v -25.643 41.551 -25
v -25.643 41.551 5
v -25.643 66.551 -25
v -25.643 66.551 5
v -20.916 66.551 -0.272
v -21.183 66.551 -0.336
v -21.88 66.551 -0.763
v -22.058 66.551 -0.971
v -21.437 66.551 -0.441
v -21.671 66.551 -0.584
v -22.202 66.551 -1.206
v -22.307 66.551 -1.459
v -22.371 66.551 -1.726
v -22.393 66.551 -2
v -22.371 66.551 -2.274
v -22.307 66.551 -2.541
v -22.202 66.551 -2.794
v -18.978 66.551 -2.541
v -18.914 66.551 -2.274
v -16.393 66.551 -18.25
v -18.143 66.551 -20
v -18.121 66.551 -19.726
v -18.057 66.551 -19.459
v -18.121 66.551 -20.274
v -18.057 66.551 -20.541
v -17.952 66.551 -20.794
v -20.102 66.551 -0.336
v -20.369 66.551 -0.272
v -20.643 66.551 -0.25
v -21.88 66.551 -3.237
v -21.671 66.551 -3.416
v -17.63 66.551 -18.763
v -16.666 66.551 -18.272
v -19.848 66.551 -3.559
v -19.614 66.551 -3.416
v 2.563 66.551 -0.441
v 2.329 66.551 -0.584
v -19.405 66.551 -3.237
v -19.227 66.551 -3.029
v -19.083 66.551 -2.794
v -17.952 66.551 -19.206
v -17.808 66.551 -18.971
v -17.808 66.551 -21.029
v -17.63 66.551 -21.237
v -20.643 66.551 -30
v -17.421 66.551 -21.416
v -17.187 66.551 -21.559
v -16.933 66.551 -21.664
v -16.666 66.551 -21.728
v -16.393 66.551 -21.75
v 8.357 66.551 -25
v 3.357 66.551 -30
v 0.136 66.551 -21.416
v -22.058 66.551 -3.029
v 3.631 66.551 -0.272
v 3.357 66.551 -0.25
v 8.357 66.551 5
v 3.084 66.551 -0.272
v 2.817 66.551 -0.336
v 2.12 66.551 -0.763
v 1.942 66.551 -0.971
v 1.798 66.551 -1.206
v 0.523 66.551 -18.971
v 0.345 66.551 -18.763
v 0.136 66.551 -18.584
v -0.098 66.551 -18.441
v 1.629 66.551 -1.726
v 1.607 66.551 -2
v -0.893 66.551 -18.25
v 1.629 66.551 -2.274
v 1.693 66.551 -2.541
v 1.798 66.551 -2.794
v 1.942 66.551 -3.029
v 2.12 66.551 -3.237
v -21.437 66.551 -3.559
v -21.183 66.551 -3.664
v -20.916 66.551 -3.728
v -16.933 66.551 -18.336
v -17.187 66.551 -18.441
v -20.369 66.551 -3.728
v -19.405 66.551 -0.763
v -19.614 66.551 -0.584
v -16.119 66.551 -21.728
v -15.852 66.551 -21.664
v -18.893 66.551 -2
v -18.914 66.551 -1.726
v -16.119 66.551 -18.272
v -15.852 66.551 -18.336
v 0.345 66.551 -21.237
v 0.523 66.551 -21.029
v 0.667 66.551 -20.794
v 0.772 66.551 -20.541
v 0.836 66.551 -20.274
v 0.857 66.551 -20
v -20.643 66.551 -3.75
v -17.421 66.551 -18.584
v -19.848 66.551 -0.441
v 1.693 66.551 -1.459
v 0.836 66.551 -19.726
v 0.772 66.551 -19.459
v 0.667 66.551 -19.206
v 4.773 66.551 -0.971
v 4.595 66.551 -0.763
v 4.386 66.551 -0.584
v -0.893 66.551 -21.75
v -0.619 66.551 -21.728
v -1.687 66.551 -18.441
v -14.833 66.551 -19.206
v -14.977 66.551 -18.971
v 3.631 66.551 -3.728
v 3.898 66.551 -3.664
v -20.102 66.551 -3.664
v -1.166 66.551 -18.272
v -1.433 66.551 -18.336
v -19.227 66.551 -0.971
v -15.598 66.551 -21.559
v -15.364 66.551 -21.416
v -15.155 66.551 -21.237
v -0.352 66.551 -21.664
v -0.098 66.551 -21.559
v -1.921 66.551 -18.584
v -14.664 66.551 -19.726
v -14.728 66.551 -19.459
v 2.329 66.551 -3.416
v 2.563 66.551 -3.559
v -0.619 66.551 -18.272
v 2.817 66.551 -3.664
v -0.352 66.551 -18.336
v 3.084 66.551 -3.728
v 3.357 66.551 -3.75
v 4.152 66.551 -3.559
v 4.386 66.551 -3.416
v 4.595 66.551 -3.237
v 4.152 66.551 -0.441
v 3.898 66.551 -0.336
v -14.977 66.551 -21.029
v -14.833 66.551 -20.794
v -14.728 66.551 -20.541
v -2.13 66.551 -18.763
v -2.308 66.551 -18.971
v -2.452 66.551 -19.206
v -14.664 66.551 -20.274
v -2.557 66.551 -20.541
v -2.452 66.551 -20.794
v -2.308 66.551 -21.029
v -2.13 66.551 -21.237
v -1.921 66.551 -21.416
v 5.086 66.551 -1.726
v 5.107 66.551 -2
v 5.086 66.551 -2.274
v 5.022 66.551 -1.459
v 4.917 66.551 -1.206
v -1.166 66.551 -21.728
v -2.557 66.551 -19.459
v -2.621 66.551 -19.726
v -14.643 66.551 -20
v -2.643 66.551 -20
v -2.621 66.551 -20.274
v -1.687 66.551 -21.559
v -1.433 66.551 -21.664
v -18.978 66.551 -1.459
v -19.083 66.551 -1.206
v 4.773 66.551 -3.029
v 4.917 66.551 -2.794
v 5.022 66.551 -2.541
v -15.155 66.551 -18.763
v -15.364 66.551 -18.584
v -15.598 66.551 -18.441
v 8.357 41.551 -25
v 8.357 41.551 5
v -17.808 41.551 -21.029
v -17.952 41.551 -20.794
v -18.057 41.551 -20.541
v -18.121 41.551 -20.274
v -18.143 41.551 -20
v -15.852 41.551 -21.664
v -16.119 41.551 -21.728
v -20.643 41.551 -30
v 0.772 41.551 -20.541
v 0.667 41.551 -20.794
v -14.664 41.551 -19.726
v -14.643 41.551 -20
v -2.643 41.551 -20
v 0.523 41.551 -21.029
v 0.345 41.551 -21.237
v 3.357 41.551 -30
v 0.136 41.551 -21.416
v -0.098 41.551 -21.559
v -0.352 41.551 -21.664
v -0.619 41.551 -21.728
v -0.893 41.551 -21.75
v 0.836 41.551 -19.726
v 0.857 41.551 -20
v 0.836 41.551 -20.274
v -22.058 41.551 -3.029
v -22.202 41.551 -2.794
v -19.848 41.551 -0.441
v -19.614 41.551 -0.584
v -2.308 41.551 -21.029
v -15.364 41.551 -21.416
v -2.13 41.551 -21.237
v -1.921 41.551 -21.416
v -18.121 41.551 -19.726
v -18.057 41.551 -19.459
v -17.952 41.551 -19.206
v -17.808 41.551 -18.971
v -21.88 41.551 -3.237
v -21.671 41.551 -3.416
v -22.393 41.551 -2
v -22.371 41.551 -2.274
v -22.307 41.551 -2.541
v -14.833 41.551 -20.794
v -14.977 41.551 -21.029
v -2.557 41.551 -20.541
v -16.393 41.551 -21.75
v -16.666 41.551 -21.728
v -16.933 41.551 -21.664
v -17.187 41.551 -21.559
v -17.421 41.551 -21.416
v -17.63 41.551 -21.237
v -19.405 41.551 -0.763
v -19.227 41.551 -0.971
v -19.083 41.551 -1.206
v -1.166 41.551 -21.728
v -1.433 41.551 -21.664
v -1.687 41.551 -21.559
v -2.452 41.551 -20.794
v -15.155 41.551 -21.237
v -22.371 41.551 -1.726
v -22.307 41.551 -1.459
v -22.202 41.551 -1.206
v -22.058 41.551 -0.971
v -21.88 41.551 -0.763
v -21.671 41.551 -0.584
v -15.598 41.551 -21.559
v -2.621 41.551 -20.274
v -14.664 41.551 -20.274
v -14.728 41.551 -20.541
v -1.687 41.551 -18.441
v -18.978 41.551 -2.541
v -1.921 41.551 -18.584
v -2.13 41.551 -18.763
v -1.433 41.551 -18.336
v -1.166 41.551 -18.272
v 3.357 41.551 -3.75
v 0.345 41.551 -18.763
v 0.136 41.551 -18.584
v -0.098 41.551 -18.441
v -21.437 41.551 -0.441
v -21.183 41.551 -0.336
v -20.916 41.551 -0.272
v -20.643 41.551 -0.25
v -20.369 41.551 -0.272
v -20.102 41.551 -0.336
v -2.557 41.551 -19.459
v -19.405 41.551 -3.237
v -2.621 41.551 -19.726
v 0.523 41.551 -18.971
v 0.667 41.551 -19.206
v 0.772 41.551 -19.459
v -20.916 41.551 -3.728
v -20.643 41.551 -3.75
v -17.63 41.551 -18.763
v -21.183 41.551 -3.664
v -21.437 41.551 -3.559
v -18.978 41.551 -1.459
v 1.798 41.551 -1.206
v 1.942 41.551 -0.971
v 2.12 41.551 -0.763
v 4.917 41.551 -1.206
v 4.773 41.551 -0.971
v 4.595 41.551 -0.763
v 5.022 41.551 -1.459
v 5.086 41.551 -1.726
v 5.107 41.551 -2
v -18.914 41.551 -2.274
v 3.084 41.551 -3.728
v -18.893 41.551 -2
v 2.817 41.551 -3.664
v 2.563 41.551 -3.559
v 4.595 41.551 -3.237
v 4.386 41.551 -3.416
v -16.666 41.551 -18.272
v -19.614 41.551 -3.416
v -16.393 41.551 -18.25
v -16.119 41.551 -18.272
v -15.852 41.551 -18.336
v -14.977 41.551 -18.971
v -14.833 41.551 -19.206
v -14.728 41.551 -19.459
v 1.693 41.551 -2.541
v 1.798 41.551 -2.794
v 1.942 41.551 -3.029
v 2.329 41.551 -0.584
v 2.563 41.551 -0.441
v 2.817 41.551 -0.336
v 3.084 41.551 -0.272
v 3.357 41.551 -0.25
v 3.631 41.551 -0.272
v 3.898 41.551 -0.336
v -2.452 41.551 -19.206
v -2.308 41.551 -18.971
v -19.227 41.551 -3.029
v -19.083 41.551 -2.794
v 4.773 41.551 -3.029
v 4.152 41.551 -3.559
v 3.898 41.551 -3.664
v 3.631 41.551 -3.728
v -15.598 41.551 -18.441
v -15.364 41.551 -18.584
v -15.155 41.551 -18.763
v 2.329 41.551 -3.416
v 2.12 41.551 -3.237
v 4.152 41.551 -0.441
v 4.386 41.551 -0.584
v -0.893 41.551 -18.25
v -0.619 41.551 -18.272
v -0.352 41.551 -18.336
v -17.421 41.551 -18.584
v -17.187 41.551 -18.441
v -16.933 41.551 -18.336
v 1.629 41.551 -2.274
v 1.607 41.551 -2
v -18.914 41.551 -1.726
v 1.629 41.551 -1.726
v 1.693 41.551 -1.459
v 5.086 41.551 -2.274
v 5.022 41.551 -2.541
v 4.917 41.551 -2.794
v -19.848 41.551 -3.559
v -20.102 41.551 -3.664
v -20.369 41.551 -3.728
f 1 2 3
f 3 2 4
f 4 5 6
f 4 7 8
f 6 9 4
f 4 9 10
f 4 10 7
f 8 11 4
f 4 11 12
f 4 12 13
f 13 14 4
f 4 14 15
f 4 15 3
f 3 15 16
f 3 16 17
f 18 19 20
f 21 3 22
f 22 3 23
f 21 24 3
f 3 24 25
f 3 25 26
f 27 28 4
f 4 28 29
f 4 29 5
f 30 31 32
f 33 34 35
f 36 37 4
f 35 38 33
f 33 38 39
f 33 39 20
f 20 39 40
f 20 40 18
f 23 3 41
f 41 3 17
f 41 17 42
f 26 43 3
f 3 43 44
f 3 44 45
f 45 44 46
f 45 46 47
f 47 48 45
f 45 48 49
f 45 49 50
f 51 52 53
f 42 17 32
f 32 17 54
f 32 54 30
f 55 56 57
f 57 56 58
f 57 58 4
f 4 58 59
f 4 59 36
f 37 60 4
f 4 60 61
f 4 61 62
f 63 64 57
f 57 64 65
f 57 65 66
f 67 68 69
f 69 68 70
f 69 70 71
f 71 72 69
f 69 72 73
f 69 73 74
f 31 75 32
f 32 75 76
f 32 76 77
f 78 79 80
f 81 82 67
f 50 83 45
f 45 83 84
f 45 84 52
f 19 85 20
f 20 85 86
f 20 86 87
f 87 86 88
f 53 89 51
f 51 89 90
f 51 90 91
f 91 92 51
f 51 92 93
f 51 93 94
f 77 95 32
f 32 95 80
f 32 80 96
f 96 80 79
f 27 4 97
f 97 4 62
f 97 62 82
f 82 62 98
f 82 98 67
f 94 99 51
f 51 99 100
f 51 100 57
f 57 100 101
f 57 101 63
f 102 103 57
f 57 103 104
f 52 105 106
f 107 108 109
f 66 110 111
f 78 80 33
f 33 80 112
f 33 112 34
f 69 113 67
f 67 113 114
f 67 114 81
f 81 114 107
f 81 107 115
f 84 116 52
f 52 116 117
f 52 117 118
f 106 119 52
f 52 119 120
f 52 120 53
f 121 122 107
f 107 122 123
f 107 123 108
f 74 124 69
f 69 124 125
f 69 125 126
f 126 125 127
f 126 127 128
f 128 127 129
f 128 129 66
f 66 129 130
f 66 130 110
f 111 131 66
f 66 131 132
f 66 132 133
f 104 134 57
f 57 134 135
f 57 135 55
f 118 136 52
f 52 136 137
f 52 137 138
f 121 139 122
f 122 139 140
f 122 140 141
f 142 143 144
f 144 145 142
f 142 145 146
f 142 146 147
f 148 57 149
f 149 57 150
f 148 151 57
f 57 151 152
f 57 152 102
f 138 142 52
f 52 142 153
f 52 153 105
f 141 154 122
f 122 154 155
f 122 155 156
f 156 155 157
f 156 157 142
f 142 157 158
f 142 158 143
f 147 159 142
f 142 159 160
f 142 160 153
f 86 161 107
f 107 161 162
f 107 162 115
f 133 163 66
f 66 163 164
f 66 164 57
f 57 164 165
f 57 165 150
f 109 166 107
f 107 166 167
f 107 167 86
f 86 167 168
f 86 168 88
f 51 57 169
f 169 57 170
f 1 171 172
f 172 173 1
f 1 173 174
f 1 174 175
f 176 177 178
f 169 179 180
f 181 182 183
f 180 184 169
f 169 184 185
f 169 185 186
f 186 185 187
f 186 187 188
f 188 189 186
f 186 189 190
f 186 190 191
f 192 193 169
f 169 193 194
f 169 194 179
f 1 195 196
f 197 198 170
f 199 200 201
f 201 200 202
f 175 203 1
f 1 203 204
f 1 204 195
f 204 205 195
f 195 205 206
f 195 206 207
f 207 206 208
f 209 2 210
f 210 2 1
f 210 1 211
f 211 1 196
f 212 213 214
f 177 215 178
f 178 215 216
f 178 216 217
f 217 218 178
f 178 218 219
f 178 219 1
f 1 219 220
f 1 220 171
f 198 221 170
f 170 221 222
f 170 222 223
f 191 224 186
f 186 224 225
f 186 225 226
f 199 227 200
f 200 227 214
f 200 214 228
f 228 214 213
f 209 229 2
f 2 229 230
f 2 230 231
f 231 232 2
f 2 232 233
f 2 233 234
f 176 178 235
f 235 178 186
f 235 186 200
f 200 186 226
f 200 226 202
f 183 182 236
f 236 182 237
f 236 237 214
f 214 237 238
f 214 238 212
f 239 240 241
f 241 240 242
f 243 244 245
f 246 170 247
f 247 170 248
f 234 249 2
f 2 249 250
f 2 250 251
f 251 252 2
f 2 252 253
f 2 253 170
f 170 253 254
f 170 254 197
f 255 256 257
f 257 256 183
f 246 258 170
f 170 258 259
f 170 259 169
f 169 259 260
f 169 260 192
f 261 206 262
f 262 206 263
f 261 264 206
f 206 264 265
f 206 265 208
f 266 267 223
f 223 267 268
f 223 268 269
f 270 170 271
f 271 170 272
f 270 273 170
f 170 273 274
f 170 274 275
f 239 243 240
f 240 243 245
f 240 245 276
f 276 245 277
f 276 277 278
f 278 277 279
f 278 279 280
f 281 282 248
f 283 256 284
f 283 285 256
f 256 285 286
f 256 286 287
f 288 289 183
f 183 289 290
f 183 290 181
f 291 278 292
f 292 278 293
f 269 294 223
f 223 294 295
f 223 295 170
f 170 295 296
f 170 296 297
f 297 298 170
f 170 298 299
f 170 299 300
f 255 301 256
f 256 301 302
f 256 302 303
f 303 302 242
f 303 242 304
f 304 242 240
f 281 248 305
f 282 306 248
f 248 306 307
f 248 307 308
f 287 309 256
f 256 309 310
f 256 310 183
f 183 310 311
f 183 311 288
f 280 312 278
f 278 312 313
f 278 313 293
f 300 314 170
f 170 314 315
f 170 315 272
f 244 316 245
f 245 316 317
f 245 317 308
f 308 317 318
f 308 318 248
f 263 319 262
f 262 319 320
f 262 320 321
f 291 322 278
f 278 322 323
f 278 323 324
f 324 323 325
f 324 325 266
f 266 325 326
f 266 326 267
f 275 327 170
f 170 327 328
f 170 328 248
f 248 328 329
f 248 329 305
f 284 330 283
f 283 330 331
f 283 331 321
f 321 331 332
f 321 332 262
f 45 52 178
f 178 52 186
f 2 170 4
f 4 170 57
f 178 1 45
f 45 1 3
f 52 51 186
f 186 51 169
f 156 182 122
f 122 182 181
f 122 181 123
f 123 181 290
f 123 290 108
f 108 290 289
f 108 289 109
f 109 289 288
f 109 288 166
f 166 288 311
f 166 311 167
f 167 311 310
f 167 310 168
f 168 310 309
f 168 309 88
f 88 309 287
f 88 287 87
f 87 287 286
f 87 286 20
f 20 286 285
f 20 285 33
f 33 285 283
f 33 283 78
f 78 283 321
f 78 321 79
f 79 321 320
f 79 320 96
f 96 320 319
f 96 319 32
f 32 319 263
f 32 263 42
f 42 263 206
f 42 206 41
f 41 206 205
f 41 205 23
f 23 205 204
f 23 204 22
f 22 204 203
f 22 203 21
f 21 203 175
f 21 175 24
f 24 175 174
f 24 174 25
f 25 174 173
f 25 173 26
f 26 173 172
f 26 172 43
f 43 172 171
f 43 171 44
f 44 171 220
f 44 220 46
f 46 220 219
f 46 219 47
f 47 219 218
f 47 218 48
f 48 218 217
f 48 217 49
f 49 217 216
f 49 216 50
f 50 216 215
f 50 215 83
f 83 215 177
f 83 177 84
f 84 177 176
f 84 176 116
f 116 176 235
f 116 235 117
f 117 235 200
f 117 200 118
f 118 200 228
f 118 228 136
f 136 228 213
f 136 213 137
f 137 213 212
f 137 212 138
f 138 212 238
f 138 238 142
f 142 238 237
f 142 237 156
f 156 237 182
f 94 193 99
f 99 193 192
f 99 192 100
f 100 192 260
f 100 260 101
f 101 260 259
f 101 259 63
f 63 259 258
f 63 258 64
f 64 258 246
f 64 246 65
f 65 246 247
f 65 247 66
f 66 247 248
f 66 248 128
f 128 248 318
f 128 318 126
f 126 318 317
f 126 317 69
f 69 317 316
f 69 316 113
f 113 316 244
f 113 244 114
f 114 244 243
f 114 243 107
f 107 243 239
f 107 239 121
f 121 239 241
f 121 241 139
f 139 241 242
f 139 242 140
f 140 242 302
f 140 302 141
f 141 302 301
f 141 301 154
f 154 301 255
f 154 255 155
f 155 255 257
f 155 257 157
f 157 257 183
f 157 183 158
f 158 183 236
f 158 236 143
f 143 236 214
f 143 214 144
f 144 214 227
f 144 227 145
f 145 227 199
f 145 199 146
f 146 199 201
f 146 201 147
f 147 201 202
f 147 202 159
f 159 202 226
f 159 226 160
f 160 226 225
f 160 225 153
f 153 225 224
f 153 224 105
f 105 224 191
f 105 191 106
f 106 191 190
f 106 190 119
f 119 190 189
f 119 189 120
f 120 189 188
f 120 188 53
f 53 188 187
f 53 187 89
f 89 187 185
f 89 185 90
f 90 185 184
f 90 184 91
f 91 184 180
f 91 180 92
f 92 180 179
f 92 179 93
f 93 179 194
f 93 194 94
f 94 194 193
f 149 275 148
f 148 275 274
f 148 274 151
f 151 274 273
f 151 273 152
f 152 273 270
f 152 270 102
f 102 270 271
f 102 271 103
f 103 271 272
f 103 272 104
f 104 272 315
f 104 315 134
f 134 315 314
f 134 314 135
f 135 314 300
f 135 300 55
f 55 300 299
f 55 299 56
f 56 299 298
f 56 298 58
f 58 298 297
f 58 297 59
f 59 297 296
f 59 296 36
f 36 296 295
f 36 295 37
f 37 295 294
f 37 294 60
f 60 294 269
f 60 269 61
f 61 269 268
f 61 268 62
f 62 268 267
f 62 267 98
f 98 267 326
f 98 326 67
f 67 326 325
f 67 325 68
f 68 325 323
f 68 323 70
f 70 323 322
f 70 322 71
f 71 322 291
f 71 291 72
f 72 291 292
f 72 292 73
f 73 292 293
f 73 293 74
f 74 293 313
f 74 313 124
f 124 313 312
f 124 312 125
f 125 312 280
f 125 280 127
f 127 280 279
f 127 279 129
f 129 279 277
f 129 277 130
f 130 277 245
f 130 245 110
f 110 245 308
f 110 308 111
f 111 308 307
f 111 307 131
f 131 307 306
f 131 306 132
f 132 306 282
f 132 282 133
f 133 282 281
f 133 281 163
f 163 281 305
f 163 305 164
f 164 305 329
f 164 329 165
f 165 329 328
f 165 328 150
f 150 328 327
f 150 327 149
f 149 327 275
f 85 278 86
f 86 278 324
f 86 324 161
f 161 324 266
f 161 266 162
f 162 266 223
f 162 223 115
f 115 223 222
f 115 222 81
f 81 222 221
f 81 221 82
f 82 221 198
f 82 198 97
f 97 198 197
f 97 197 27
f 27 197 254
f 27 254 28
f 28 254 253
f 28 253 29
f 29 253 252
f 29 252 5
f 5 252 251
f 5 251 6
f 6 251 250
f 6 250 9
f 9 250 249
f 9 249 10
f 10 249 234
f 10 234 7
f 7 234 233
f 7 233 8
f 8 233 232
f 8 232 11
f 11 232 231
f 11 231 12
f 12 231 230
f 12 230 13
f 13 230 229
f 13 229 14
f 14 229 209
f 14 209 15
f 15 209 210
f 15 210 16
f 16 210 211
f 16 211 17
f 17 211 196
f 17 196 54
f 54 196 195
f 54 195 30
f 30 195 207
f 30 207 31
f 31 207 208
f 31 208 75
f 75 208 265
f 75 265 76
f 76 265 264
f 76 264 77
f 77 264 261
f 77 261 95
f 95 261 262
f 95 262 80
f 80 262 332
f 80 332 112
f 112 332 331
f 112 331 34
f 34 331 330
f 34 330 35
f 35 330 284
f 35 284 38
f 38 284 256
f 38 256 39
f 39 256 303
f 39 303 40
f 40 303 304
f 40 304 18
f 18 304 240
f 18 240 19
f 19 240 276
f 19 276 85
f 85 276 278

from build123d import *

# Parameters (mm, degrees)
SKETCH1_W          = 34
SKETCH1_H          = 25
EXTRUDE1_DEPTH     = 30
SKETCH2_W          = 34
SKETCH2_H          = 25
EXTRUDE2_DEPTH     = 5
CHAMFER1_SIZE      = 5
SKETCH3_R          = 1.75
CUT_EXTRUDE1_DEPTH = 47.717707411


with BuildPart() as part:
    # Sketch1 → Extrude1 (new body)
    with BuildSketch(Plane.XY):
        with Locations((-8.642624393, 54.051188485)):
            Rectangle(SKETCH1_W, SKETCH1_H)
    extrude(amount=-EXTRUDE1_DEPTH)

    # Sketch2 → Extrude2 (add)
    with BuildSketch(Plane.XY):
        with Locations((-8.642624393, 54.051188485)):
            Rectangle(SKETCH2_W, SKETCH2_H)
    extrude(amount=EXTRUDE2_DEPTH)

    # Chamfer1
    chamfer1_edges = [part.edges().sort_by_distance(p)[0] for p in [
        (8.357375607, 54.051188485, -30),
        (-25.642624393, 54.051188485, -30),
    ]]
    chamfer(chamfer1_edges, length=CHAMFER1_SIZE)

    # Sketch3 → Cut-Extrude1 (cut, through all)
    with BuildSketch(Plane.XZ.offset(-41.551188485)):
        with Locations((-16.392624393, -20)):
            Circle(SKETCH3_R)
        with Locations((-0.892624393, -20)):
            Circle(SKETCH3_R)
        with Locations((-20.642624393, -2)):
            Circle(SKETCH3_R)
        with Locations(Location((3.357375607, -2, 0), (0, 0, 180))):
            Circle(SKETCH3_R)
    extrude(amount=-CUT_EXTRUDE1_DEPTH, mode=Mode.SUBTRACT)


solid = part.part
